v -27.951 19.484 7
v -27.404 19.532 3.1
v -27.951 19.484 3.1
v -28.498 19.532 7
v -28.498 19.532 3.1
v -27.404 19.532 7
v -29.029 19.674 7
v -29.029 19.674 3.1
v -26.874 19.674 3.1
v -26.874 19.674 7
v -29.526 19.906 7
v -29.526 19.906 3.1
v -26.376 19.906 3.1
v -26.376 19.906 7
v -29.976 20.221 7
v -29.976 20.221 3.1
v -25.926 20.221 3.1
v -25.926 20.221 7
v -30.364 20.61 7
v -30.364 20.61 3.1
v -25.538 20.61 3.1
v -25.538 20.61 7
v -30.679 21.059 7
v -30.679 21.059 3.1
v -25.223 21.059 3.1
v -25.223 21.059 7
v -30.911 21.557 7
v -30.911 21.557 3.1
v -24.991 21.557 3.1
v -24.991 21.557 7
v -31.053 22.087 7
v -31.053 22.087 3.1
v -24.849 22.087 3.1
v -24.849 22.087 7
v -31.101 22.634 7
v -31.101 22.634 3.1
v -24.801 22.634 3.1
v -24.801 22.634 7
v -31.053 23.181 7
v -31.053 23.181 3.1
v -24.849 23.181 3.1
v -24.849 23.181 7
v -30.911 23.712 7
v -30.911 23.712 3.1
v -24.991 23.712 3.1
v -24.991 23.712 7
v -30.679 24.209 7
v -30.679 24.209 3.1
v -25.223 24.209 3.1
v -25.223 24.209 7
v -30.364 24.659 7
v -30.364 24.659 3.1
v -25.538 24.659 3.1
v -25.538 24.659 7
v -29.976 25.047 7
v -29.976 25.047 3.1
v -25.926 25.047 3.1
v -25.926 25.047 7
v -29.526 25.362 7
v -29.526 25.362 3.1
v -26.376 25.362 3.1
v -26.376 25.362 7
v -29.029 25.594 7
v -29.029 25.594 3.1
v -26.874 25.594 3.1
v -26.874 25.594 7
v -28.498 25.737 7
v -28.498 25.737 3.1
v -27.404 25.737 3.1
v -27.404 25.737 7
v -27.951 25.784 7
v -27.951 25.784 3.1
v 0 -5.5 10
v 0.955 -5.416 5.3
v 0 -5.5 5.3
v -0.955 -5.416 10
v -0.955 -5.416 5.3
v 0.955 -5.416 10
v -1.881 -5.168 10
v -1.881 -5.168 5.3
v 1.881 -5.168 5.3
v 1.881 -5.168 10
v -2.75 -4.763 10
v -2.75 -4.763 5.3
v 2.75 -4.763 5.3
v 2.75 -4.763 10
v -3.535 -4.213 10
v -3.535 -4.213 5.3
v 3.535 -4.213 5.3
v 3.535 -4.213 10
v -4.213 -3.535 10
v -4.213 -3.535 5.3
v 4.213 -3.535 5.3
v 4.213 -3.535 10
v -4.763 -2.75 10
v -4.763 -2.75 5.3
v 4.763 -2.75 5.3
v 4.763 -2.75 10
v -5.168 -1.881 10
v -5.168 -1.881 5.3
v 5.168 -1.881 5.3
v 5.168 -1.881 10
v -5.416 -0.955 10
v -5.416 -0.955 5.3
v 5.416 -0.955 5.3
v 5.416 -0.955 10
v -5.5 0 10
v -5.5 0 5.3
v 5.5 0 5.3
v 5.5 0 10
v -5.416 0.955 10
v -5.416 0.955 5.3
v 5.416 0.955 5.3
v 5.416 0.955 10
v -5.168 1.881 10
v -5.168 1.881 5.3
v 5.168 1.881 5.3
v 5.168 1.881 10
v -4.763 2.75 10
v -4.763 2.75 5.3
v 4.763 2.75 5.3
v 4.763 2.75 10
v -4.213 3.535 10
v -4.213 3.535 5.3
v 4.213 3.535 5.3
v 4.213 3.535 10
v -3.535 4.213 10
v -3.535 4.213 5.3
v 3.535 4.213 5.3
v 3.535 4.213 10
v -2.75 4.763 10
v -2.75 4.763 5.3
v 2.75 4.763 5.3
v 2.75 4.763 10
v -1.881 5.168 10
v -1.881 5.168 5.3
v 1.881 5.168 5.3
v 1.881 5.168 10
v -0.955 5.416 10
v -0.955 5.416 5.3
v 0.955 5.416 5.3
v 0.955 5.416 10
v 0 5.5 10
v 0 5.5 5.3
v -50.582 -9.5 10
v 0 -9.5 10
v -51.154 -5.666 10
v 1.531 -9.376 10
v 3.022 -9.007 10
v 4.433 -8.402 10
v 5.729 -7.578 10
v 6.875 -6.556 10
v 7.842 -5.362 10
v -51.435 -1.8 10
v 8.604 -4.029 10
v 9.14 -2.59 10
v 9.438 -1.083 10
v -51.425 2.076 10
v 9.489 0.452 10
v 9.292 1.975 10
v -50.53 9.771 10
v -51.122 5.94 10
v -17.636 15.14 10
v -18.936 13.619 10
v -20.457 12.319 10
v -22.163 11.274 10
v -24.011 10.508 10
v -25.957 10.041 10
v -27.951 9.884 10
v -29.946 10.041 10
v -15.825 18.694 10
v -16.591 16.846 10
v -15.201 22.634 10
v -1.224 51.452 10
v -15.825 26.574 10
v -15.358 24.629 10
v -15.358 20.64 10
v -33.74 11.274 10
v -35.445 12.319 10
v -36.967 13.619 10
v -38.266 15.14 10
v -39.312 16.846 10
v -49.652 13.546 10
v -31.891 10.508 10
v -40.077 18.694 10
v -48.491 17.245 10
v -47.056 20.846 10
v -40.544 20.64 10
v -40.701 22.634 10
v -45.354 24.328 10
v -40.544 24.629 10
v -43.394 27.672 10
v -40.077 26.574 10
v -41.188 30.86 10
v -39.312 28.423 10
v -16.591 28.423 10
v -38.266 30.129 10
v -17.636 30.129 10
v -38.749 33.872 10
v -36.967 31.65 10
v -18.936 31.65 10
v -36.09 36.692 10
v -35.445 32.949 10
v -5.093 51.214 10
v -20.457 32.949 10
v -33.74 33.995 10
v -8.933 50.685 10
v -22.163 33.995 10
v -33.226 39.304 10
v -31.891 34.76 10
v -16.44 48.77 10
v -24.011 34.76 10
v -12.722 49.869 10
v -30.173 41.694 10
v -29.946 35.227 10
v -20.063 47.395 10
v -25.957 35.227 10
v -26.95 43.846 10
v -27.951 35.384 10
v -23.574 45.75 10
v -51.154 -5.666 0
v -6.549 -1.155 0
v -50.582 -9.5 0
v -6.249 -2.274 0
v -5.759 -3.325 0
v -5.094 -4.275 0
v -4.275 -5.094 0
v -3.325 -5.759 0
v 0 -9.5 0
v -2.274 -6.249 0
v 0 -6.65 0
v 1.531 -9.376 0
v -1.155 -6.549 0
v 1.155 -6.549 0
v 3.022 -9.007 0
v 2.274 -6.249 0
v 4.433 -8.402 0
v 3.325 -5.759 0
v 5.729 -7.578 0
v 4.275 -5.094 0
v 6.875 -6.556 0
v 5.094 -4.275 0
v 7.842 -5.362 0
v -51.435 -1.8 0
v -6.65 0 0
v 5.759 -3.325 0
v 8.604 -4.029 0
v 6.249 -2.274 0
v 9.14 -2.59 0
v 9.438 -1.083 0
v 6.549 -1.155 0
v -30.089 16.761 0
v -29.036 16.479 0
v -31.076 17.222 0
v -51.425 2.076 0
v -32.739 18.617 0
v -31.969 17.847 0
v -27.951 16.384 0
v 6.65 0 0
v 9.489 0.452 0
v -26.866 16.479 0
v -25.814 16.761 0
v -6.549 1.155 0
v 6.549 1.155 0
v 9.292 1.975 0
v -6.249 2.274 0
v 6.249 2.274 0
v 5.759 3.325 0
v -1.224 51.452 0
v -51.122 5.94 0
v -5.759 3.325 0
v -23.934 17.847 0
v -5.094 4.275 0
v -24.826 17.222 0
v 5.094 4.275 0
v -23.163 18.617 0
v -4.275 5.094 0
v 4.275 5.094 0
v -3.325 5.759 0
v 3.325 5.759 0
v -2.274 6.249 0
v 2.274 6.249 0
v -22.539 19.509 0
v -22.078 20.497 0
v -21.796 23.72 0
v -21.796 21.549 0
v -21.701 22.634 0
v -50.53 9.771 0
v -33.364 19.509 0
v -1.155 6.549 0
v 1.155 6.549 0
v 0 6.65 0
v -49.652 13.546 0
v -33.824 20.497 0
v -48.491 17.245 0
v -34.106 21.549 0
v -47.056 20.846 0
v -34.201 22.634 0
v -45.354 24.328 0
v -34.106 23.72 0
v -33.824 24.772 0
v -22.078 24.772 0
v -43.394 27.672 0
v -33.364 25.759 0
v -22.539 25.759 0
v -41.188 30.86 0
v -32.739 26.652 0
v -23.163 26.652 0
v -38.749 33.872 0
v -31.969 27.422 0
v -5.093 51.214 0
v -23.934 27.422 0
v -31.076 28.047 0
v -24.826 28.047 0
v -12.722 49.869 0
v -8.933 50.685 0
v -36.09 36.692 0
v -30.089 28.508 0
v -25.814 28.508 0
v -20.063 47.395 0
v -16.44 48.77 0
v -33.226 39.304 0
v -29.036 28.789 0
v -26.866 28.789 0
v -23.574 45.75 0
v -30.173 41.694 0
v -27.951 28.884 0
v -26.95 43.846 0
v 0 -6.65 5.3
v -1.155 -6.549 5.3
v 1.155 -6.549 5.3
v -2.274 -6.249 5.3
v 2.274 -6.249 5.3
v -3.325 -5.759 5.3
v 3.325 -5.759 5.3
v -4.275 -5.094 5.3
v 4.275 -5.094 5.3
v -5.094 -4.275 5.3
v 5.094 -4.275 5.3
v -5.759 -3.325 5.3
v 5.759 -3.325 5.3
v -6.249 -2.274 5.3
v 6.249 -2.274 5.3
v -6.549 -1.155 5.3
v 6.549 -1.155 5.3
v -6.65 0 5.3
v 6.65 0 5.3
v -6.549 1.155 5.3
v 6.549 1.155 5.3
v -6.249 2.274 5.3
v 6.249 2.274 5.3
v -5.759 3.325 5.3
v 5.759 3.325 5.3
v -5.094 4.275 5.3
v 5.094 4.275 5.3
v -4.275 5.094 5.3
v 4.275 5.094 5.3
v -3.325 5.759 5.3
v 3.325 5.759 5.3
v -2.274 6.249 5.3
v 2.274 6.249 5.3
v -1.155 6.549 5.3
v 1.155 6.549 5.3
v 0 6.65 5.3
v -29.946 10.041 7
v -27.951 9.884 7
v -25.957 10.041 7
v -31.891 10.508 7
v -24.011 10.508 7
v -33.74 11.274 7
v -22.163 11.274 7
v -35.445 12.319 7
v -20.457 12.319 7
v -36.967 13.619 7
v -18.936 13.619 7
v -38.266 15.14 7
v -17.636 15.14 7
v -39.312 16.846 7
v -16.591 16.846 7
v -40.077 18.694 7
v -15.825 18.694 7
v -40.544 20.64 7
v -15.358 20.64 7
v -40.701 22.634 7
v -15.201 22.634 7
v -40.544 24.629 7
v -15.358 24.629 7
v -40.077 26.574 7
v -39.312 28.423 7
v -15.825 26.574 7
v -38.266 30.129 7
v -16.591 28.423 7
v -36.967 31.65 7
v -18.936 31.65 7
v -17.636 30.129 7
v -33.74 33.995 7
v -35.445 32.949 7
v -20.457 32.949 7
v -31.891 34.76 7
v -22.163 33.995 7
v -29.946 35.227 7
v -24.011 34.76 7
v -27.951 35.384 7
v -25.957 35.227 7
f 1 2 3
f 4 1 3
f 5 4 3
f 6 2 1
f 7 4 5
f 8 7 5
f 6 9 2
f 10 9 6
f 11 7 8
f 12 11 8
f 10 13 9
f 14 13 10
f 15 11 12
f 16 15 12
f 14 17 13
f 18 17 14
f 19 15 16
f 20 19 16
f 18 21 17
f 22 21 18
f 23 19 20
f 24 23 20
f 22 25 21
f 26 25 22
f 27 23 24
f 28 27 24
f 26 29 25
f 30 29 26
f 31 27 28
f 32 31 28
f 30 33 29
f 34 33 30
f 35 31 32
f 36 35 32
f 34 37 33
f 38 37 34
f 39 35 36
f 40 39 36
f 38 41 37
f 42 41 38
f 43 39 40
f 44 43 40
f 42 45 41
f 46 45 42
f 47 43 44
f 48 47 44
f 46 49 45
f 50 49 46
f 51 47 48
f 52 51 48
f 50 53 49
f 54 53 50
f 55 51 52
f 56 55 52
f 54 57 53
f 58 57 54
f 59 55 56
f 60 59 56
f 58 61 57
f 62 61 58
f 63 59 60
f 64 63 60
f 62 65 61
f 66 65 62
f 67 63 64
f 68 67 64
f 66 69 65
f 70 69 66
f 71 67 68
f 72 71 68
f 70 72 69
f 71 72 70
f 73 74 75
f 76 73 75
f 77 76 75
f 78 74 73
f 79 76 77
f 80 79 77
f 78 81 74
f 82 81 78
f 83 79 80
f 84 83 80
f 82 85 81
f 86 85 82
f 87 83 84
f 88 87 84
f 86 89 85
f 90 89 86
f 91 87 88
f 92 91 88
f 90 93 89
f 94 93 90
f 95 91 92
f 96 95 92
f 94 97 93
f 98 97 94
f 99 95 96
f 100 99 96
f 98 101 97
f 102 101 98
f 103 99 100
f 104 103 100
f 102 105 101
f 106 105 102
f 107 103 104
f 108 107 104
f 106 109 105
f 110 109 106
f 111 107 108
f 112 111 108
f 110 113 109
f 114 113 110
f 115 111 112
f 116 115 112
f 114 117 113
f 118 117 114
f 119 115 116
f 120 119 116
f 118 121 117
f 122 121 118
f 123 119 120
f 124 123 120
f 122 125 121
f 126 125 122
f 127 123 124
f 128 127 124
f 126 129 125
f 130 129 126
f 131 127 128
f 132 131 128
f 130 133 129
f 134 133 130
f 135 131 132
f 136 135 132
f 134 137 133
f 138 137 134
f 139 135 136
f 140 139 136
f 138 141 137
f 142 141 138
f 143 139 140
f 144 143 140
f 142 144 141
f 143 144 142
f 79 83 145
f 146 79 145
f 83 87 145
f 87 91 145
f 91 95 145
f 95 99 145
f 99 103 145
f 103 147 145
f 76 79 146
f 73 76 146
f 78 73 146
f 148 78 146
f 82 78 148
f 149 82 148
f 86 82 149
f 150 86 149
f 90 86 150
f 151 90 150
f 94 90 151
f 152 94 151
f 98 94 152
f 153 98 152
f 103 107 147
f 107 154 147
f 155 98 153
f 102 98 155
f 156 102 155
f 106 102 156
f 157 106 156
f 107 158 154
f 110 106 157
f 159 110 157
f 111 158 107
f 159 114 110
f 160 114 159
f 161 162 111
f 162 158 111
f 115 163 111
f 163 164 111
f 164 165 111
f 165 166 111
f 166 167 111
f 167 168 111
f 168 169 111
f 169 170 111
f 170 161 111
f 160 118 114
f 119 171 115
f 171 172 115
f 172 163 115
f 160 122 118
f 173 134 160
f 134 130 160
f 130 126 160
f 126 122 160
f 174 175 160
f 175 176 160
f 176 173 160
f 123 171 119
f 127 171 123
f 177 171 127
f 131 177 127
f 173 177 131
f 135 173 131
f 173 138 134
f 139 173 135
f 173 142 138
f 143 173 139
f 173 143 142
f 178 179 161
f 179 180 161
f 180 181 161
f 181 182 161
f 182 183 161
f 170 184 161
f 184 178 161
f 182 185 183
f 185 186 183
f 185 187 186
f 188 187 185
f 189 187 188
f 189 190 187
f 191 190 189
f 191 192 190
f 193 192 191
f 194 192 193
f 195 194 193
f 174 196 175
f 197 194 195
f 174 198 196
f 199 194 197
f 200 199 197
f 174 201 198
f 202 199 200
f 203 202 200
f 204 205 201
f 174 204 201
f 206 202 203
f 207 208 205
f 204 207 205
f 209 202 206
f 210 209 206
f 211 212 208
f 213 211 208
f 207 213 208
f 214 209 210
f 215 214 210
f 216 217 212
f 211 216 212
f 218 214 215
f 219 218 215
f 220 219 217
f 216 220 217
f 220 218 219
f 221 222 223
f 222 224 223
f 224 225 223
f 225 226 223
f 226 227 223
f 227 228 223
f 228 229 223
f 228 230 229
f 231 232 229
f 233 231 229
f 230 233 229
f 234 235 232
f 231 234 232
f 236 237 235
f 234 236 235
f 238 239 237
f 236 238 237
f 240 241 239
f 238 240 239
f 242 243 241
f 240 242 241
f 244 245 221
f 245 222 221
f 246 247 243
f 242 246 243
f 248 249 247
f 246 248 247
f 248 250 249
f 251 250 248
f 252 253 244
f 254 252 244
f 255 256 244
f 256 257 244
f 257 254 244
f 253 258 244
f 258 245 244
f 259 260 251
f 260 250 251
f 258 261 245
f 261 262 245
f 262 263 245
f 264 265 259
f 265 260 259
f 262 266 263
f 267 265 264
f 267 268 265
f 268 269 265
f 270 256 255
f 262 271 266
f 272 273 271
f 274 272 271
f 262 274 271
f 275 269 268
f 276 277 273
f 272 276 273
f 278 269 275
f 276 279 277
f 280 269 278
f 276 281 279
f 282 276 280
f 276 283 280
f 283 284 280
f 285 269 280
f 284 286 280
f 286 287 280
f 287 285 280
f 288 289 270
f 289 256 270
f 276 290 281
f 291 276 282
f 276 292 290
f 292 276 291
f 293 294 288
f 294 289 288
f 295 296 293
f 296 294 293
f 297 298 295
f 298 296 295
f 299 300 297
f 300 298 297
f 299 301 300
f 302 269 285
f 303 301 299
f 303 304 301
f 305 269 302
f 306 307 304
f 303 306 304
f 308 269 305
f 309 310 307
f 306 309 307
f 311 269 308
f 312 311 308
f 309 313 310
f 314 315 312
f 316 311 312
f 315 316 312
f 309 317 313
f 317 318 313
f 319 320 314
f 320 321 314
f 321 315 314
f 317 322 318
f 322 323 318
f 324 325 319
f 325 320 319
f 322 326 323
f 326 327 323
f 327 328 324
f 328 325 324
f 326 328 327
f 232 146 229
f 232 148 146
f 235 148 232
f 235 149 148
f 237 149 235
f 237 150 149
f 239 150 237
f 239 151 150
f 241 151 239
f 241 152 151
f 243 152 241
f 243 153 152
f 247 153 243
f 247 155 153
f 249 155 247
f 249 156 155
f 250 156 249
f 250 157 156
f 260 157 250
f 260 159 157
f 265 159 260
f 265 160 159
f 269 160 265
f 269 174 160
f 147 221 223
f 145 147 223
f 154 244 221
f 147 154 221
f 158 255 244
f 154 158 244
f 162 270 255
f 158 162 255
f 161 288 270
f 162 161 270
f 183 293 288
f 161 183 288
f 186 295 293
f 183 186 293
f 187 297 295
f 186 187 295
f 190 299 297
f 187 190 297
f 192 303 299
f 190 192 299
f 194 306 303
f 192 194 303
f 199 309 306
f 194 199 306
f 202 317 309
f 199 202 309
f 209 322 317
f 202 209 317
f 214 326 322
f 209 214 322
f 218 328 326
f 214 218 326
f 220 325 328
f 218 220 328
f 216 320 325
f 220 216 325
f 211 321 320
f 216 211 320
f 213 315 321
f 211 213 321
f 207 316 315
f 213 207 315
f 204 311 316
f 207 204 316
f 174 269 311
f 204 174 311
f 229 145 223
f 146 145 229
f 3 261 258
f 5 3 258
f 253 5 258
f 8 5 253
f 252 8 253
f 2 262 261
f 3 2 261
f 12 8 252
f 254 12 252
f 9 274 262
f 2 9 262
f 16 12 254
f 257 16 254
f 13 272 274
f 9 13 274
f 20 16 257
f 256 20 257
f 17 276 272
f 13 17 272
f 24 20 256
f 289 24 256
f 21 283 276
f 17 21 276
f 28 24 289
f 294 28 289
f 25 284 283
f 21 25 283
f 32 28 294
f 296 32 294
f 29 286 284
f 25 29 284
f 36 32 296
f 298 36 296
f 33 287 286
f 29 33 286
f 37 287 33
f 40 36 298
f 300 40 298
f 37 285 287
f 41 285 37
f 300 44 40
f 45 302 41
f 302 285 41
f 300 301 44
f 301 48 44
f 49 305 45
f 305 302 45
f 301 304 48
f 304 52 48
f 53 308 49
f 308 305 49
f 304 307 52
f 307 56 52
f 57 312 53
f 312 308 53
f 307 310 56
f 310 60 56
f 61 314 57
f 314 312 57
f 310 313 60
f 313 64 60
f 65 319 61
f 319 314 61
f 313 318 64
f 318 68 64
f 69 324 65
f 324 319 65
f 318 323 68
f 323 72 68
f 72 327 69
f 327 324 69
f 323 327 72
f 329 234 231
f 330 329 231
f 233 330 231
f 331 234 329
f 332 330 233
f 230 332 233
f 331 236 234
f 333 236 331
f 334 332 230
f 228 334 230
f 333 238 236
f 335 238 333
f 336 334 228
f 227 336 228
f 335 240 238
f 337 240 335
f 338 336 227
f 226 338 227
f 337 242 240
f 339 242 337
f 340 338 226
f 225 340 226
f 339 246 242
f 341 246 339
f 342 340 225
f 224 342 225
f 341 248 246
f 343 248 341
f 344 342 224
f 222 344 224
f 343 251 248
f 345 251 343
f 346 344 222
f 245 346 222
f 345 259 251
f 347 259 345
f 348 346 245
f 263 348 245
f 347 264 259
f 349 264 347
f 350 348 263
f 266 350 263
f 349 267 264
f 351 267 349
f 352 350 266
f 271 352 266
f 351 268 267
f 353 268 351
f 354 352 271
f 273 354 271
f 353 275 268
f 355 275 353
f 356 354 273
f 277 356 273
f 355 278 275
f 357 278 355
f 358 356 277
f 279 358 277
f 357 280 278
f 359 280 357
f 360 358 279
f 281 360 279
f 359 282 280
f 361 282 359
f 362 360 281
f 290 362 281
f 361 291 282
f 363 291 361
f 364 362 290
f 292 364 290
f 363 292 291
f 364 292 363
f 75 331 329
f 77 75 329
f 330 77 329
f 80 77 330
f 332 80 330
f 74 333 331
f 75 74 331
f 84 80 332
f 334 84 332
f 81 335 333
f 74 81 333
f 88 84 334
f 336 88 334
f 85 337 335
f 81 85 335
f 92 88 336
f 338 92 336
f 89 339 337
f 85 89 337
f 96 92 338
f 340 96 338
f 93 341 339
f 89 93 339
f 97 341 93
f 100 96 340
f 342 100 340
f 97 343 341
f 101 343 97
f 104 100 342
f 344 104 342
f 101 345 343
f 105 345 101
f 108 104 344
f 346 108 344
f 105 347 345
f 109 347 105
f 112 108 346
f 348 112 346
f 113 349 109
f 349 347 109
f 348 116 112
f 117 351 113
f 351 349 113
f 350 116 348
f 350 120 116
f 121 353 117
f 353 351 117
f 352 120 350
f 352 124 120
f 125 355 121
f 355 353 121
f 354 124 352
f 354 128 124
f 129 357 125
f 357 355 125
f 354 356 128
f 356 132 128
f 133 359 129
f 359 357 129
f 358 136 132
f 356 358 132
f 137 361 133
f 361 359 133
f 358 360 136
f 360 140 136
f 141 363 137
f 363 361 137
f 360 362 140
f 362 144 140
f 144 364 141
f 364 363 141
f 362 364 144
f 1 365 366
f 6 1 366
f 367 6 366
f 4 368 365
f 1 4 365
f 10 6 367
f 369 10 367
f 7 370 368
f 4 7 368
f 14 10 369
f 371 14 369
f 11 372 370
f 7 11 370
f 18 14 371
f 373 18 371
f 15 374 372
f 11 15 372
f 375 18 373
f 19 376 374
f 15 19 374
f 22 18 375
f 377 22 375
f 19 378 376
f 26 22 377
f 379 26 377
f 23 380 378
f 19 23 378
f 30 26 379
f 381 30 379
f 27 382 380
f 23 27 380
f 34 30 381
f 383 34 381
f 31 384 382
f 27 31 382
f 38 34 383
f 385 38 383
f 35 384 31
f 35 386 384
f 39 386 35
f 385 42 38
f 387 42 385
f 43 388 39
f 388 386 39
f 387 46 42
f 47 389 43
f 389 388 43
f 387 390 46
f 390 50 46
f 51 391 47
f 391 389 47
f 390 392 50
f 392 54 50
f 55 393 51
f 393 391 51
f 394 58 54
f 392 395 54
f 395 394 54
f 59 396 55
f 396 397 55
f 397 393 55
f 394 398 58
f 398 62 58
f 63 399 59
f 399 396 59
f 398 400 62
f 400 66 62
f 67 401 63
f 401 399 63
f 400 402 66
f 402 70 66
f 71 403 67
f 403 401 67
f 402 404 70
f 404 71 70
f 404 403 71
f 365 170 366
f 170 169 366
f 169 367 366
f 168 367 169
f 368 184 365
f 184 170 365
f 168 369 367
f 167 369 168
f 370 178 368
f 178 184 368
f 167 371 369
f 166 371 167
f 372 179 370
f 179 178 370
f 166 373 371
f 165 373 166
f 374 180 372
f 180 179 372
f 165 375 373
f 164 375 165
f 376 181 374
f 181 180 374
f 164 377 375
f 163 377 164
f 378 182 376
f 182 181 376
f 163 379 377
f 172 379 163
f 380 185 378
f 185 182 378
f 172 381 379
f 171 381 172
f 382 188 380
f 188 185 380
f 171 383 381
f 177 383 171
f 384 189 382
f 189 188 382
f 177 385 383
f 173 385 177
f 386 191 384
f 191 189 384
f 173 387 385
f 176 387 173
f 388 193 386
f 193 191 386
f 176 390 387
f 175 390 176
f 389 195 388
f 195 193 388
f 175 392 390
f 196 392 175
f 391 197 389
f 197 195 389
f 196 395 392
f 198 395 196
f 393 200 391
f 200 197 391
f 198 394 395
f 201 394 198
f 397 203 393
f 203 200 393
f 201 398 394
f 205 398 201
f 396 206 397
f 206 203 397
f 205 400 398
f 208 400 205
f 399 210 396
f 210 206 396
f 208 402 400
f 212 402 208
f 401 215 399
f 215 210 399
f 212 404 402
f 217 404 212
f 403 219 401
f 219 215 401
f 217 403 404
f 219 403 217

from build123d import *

# Parameters (mm, degrees)
SKETCH4_R                                            = 5.5
SKETCH4_R_2                                          = 3
BOSS_EXTRUDE2_DEPTH                                  = 10
CSK_FOR_M6_HEX_SOCKET_COUNTERSUNK_CAP_SC_D           = 6.3
CSK_FOR_M6_HEX_SOCKET_COUNTERSUNK_CAP_SC_CSINK_D     = 12.5
CSK_FOR_M6_HEX_SOCKET_COUNTERSUNK_CAP_SC_CSINK_ANGLE = 90
SKETCH7_R                                            = 6.65
CUT_EXTRUDE1_DEPTH                                   = 5.3
SKETCH8_R                                            = 12.75
CUT_EXTRUDE2_DEPTH                                   = 3


with BuildPart() as part:
    # Sketch4 → Boss-Extrude2 (new body)
    with BuildSketch(Plane.XY):
        with BuildLine():
            Line((9.292402207, 1.975161063), (-1.224202506, 51.451896246))
            ThreePointArc((-1.224202506, 51.451896246), (-39.996949985, 32.388891475), (-50.582074879, -9.5))
            Line((-50.582074879, -9.5), (0, -9.5))
            ThreePointArc((0, -9.5), (7.382886634, -5.978543715), (9.292402207, 1.975161063))
        make_face()
        Circle(SKETCH4_R, mode=Mode.SUBTRACT)
        with Locations((-27.951187583, 22.634425413)):
            Circle(SKETCH4_R_2, mode=Mode.SUBTRACT)
    extrude(amount=BOSS_EXTRUDE2_DEPTH)

    # CSK for M6 Hex Socket Countersunk Cap Screw1 (through all)
    with Locations(Plane(origin=(0, 0, 0), x_dir=(-1, 0, 0), z_dir=(0, 0, -1))):
        with Locations((27.951187583, 22.634425413)):
            CounterSinkHole(CSK_FOR_M6_HEX_SOCKET_COUNTERSUNK_CAP_SC_D / 2, CSK_FOR_M6_HEX_SOCKET_COUNTERSUNK_CAP_SC_CSINK_D / 2, counter_sink_angle=CSK_FOR_M6_HEX_SOCKET_COUNTERSUNK_CAP_SC_CSINK_ANGLE)

    # Sketch7 → Cut-Extrude1 (cut)
    with BuildSketch(Plane(origin=(0, 0, 0), x_dir=(-1, 0, 0), z_dir=(0, 0, -1))):
        Circle(SKETCH7_R)
    extrude(amount=-CUT_EXTRUDE1_DEPTH, mode=Mode.SUBTRACT)

    # Sketch8 → Cut-Extrude2 (cut)
    with BuildSketch(Plane.XY.offset(10)):
        with Locations((-27.951187583, 22.634425413)):
            Circle(SKETCH8_R)
    extrude(amount=-CUT_EXTRUDE2_DEPTH, mode=Mode.SUBTRACT)


solid = part.part
